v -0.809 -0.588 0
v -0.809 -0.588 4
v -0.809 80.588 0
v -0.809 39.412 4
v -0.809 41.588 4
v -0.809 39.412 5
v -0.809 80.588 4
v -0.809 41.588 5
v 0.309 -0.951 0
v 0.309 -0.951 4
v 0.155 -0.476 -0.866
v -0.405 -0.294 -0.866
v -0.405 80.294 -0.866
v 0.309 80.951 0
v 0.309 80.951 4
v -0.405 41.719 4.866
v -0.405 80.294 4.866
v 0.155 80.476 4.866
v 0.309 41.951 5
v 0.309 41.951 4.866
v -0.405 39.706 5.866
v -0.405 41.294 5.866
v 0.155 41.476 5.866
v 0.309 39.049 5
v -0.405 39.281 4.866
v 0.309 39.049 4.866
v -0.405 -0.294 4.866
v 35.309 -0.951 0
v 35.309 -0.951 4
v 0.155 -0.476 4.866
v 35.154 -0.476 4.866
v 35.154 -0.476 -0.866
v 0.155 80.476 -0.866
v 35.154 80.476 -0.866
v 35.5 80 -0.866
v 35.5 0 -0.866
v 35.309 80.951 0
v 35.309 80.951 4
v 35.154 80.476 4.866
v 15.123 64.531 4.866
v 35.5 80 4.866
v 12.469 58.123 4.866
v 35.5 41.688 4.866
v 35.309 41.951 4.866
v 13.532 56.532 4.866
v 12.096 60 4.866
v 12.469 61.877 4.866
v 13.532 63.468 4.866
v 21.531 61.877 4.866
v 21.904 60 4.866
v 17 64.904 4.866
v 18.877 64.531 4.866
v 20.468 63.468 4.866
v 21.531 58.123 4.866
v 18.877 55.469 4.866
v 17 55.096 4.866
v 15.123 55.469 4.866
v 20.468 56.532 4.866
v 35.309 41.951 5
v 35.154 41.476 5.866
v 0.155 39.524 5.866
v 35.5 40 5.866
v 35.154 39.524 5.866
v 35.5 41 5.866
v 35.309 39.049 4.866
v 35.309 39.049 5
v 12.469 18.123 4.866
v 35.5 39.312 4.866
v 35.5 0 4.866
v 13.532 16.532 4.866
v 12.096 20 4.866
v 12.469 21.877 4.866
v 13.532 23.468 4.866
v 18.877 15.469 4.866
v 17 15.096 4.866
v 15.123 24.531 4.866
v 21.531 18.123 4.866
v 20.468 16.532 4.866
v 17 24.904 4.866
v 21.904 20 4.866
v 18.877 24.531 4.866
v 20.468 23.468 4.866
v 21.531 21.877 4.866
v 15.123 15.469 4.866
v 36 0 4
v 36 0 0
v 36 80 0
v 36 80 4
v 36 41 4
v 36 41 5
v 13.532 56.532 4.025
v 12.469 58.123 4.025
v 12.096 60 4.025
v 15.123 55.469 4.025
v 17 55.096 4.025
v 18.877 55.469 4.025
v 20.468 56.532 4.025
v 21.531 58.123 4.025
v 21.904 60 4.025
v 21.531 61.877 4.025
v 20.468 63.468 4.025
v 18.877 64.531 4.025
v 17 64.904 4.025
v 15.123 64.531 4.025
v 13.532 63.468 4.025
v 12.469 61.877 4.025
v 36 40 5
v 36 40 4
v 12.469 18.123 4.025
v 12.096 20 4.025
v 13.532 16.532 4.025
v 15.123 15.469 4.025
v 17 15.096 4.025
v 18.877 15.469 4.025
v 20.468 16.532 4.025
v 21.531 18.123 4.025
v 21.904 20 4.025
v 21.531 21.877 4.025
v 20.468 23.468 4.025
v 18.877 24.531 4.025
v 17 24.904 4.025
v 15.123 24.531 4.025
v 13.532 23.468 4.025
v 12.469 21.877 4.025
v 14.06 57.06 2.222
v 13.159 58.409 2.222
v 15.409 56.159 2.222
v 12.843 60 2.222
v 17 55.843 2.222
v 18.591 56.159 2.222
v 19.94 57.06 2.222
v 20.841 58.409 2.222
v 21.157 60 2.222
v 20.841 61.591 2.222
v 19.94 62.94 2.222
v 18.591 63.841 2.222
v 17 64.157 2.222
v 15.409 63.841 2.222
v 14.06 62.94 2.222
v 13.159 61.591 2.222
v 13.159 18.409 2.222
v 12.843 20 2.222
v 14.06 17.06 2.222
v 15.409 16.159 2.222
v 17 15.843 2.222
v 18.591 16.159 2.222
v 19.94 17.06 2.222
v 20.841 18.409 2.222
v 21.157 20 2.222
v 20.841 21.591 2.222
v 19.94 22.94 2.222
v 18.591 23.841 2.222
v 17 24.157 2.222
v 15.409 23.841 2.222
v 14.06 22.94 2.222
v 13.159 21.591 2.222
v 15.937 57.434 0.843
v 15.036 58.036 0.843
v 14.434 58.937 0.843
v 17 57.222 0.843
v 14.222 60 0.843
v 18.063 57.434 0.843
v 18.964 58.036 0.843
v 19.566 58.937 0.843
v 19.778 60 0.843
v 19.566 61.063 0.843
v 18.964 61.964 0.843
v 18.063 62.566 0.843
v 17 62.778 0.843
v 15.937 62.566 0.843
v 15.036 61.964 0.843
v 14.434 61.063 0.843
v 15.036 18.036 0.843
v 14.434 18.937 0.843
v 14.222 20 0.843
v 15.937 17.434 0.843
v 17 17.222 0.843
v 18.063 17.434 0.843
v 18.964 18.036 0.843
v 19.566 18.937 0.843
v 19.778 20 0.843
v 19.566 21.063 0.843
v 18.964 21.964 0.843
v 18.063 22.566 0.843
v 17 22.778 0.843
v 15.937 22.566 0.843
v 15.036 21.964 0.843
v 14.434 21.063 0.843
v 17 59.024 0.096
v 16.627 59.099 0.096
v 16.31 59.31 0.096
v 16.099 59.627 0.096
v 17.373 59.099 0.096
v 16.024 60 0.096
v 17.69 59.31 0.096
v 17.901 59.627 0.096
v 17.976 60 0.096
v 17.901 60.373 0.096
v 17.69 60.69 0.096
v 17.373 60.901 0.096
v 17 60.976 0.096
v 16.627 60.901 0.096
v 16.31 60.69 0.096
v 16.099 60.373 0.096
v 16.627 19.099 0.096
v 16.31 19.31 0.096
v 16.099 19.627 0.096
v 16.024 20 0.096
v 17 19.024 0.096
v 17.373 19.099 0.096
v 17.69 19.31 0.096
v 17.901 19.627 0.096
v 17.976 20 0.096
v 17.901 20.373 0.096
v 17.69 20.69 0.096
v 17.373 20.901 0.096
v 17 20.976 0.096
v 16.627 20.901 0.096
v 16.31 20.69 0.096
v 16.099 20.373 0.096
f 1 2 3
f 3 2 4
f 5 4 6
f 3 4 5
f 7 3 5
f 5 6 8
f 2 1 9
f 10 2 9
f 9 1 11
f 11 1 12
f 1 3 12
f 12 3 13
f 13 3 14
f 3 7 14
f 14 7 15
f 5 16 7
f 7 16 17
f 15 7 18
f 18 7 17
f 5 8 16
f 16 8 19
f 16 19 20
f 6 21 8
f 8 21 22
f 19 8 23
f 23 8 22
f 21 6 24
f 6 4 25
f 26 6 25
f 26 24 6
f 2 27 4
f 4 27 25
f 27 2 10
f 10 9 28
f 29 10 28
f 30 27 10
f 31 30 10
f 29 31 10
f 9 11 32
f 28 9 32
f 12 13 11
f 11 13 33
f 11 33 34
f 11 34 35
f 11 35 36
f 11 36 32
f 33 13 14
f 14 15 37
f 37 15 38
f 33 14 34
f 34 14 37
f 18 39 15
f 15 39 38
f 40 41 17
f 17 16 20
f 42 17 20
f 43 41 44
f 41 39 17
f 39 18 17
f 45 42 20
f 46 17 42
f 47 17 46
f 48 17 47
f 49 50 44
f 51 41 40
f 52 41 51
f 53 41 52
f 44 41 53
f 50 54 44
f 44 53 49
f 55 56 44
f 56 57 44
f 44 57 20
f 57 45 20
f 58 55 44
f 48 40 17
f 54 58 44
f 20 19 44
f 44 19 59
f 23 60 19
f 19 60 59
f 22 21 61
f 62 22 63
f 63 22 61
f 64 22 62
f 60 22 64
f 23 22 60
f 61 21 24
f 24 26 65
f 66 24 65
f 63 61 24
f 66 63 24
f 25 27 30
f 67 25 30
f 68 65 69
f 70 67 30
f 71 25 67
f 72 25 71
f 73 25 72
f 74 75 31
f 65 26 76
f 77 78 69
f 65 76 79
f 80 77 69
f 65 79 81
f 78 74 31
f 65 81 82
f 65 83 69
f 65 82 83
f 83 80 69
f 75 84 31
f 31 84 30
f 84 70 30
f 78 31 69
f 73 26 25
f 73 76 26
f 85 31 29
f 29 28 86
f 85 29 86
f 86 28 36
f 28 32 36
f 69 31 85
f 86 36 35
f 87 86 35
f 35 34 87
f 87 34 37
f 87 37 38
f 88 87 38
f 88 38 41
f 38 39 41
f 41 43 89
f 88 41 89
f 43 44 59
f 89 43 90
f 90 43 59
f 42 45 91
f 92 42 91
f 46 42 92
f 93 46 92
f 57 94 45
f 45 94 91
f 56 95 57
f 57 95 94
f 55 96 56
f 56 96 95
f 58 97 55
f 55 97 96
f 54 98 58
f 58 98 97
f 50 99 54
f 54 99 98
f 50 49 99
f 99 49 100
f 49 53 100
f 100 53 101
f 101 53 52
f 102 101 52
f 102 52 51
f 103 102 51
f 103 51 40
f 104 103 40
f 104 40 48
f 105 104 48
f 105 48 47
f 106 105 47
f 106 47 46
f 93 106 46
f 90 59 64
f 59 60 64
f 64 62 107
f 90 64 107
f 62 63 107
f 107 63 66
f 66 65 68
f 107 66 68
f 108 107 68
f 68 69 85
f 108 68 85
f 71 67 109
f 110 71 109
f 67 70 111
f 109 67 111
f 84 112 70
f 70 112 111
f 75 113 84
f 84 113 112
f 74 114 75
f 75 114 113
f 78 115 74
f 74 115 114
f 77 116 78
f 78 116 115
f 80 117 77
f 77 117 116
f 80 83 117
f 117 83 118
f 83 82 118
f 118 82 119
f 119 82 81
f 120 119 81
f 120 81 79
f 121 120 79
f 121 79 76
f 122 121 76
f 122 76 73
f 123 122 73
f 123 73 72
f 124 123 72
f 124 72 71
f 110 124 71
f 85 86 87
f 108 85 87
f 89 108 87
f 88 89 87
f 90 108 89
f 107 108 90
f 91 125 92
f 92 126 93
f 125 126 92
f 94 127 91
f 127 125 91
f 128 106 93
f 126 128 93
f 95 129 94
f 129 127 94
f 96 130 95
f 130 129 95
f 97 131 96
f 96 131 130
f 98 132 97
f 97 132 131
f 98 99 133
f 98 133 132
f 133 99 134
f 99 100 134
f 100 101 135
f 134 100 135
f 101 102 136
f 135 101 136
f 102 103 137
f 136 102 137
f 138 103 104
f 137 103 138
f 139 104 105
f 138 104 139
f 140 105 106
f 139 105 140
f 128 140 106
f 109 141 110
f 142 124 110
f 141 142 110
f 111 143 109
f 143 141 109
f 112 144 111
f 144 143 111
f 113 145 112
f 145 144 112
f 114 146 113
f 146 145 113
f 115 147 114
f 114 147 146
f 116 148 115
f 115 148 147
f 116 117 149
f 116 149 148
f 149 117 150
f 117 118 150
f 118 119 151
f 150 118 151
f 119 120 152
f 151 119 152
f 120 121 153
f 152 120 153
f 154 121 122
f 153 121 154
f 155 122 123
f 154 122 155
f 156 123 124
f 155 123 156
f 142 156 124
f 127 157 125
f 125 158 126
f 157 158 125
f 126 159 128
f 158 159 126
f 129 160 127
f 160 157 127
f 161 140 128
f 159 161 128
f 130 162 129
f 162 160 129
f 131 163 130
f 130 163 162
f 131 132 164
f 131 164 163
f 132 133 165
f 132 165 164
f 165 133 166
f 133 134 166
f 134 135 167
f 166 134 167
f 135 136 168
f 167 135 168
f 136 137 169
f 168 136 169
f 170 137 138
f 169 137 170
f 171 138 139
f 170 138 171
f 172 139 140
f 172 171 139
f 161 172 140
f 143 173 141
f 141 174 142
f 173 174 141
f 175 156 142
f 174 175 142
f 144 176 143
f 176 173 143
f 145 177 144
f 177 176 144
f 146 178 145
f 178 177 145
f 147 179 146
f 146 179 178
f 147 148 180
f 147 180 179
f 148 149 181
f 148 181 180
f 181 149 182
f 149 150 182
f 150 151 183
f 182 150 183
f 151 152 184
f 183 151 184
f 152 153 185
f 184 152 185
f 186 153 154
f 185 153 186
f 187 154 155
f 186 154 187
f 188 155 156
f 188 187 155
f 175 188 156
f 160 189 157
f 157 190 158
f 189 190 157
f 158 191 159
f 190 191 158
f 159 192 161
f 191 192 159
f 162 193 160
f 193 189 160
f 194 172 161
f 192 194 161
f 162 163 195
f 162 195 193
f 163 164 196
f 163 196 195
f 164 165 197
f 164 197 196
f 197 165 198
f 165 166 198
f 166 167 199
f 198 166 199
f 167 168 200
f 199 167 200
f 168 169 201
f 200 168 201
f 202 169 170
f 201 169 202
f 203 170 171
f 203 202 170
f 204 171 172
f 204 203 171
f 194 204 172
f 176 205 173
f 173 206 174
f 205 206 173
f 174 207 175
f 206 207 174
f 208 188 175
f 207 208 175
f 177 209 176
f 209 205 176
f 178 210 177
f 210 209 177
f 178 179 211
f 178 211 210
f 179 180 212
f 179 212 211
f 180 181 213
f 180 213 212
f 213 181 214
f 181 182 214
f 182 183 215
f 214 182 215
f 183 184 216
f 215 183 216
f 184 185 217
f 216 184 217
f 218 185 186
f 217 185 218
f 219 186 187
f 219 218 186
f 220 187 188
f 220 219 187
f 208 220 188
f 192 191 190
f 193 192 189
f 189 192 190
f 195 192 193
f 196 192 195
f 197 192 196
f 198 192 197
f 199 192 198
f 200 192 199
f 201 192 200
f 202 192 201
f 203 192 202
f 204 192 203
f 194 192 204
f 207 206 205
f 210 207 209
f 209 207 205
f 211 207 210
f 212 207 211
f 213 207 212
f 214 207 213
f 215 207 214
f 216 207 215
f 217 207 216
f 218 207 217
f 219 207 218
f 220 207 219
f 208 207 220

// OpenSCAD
// Loguncov Maxim 13.12.13


//$fn=128;


translate([0,40,0])
minkowski()
{cube([35,1,5]);
sphere(1);
}

difference() {

//основа
minkowski()
{cube([35,80,4]);
sphere(1);
}

//отверстия
translate([17,20,5])sphere(5);

translate([17,60,5])sphere(5);




}
